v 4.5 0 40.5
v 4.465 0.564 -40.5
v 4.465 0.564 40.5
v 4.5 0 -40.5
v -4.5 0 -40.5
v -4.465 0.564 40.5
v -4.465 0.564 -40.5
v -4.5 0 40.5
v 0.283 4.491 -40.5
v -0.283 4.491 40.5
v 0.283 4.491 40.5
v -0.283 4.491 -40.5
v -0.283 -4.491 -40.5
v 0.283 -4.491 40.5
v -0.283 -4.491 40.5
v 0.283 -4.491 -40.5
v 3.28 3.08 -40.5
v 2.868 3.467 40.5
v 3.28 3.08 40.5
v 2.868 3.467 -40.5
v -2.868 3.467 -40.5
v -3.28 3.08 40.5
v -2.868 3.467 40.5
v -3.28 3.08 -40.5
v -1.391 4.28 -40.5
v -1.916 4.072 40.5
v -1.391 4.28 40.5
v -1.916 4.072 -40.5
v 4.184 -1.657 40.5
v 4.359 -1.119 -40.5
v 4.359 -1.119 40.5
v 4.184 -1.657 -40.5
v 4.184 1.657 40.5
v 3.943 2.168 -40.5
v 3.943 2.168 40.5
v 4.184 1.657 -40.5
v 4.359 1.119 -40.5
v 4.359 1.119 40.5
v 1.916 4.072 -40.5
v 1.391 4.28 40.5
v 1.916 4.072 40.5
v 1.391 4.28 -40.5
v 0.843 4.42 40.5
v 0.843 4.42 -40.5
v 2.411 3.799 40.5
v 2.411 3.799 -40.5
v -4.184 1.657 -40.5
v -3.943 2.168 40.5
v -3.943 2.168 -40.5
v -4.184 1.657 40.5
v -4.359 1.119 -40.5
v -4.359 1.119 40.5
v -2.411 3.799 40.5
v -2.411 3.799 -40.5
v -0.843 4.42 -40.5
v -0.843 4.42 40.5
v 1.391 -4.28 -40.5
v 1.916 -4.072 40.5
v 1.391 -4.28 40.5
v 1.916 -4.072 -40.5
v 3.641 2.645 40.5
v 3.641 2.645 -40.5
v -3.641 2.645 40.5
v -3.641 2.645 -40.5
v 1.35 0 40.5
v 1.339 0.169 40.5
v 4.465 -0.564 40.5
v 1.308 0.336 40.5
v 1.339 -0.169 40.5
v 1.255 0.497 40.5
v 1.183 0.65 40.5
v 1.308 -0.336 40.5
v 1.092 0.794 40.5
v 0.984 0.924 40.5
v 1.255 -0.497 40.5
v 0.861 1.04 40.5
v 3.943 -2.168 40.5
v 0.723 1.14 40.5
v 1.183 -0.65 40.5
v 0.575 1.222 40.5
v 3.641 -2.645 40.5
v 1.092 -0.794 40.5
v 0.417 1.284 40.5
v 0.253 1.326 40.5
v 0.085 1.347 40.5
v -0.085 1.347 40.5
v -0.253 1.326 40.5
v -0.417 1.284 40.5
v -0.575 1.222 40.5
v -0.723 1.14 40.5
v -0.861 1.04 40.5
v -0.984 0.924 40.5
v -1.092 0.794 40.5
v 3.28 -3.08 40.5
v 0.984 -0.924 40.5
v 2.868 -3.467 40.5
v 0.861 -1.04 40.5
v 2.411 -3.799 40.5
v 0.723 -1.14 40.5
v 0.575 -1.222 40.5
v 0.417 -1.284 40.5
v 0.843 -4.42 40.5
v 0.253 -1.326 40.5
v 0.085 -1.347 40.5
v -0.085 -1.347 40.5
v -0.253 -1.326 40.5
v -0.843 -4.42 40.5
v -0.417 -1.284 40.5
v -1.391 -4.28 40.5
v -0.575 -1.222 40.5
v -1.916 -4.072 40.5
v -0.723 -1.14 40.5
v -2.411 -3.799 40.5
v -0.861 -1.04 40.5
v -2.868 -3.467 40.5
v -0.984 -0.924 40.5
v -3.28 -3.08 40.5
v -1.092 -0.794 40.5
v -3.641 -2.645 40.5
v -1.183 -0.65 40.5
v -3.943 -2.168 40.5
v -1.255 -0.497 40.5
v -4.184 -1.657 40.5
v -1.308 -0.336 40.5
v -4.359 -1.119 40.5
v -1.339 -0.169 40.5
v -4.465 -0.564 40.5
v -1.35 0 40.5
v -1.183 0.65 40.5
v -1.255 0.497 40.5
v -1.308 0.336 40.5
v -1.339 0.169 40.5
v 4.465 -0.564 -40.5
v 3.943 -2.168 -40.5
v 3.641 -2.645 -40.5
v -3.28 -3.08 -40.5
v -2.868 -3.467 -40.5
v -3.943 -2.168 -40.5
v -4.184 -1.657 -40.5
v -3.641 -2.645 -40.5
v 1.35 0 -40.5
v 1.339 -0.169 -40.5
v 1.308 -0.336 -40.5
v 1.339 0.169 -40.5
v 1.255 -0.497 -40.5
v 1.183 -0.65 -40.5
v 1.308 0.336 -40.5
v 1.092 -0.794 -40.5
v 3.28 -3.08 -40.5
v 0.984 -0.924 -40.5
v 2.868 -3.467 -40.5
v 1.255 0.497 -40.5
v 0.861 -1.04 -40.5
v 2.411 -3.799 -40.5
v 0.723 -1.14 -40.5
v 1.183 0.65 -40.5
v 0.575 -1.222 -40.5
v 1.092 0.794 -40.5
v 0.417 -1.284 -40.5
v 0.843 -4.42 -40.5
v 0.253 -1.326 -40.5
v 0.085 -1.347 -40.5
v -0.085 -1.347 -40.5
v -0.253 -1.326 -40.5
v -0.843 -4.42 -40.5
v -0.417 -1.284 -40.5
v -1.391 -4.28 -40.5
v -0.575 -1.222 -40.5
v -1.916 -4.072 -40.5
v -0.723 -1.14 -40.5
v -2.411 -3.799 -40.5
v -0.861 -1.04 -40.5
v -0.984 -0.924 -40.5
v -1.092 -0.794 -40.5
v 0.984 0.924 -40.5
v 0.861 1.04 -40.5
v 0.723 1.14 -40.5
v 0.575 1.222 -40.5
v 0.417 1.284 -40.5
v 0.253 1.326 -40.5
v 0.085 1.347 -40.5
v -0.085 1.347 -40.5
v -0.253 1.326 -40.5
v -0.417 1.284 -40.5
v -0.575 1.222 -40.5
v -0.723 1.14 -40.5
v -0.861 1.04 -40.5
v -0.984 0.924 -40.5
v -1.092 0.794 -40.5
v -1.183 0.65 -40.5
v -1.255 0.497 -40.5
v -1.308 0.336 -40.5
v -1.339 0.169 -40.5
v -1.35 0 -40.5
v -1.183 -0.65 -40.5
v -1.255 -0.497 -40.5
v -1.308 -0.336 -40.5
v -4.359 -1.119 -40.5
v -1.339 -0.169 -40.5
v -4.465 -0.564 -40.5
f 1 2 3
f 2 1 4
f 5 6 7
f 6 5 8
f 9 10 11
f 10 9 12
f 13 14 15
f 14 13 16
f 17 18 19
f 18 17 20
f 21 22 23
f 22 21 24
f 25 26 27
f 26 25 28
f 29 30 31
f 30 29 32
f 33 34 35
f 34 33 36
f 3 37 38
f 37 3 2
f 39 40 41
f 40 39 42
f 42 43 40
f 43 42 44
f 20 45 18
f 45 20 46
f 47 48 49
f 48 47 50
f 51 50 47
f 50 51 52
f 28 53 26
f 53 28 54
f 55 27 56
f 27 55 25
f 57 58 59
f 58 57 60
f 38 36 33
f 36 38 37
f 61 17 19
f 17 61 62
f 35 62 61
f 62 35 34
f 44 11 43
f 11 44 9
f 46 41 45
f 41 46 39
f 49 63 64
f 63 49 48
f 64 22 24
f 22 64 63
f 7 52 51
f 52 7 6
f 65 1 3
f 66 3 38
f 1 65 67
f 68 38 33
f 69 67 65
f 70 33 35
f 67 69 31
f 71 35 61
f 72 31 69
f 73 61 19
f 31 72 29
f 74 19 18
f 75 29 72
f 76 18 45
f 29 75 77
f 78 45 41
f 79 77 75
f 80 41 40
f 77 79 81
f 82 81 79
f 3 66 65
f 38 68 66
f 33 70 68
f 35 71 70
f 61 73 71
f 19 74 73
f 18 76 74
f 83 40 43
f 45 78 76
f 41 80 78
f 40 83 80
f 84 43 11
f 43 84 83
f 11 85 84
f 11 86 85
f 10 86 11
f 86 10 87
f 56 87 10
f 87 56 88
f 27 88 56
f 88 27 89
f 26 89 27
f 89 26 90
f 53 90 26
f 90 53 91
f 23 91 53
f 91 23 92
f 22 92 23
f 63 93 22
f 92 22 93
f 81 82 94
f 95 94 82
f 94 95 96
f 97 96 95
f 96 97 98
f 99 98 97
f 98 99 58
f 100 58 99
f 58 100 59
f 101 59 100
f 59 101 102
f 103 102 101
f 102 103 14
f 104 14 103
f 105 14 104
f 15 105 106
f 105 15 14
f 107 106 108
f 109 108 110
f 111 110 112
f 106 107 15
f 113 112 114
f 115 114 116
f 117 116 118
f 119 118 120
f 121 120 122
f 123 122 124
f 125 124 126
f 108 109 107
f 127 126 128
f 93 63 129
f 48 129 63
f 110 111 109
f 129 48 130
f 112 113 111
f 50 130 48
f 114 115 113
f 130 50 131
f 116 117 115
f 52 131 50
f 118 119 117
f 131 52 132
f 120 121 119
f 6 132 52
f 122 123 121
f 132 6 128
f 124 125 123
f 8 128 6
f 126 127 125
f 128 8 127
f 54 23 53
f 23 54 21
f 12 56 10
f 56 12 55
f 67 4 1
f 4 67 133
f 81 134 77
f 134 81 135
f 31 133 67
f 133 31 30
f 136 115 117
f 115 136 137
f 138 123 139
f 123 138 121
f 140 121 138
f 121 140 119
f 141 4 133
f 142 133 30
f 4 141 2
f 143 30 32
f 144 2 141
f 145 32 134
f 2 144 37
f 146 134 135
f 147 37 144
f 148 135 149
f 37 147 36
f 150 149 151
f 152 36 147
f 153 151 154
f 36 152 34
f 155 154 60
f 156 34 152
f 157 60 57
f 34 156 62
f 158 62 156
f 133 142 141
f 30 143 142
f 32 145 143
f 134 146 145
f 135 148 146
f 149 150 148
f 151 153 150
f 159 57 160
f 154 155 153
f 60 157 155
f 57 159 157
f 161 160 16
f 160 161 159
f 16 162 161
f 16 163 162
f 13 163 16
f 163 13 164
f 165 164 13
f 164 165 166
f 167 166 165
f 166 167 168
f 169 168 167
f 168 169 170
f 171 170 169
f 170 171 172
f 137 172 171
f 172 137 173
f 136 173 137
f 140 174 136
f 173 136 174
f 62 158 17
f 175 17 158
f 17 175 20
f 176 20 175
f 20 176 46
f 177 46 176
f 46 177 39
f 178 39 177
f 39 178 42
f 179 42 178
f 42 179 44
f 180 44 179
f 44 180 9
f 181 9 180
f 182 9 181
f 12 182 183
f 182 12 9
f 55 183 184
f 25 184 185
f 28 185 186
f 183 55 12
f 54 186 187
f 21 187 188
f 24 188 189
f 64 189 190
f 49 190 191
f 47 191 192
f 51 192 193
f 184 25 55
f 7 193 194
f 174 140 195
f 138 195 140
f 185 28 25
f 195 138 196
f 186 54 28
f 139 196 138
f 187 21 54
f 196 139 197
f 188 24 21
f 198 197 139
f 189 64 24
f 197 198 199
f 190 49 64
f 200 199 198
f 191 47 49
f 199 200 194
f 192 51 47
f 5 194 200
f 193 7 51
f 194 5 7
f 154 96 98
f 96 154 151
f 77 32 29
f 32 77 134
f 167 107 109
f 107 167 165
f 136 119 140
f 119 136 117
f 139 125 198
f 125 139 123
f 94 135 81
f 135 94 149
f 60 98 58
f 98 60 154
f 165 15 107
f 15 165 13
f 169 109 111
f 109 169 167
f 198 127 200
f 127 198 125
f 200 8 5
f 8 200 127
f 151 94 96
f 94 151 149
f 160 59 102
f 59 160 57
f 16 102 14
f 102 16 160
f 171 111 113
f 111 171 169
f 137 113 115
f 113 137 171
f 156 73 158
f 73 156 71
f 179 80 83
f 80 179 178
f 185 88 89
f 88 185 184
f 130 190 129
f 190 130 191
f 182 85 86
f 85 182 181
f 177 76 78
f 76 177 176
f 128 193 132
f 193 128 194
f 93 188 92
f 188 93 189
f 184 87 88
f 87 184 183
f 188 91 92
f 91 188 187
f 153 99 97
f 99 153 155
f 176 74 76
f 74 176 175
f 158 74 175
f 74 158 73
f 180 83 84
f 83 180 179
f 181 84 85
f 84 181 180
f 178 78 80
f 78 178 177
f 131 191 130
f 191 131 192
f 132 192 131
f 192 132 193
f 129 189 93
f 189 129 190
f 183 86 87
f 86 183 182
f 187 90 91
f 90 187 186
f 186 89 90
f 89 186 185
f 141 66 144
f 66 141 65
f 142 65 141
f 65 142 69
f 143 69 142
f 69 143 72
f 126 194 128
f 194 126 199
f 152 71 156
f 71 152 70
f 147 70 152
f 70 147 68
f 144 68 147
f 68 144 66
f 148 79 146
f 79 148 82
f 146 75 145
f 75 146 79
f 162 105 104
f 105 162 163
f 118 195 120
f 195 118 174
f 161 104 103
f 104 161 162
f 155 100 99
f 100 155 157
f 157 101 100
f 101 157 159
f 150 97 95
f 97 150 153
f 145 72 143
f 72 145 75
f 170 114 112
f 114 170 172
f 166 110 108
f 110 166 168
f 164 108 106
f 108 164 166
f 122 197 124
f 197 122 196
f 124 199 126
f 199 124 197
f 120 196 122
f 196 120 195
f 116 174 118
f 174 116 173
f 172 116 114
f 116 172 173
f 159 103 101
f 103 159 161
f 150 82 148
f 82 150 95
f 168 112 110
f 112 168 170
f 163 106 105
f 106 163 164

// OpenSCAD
$fn = 50;


difference() {
	union() {
		translate(v = [0, 0, -40.5000000000]) {
			cylinder(h = 81, r = 4.5000000000);
		}
	}
	union() {
		translate(v = [0, 0, -100.0000000000]) {
			cylinder(h = 200, r = 1.3500000000);
		}
	}
}
